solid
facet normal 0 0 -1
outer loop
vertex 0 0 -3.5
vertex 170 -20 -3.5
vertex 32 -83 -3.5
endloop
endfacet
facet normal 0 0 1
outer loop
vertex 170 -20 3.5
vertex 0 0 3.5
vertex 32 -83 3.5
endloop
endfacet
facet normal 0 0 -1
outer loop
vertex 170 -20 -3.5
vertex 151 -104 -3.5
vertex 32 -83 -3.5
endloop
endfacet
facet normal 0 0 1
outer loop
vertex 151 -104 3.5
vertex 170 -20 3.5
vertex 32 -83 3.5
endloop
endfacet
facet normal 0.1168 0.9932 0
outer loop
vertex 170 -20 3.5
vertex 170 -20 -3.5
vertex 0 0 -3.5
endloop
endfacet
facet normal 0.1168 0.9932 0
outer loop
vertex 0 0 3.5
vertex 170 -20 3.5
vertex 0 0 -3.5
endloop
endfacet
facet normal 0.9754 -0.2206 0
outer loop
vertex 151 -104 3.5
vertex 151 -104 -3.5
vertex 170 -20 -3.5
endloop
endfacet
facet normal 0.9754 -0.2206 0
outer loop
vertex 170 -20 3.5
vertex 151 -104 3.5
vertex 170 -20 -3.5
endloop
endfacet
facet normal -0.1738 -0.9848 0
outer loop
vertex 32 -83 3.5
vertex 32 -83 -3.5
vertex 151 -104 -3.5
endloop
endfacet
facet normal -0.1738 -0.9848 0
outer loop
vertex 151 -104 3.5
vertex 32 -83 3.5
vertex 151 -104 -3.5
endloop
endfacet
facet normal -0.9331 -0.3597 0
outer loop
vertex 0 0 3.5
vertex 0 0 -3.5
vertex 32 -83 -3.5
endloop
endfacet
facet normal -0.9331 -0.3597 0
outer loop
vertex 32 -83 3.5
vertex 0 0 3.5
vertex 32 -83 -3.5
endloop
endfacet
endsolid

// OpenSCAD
polyhedron(points=[[32.0, -83.0, -3.5], [0.0, 0.0, -3.5], [170.0, -20.0, -3.5], [32.0, -83.0, 3.5], [0.0, 0.0, 3.5], [170.0, -20.0, 3.5], [151.0, -104.0, -3.5], [151.0, -104.0, 3.5]], faces=[[1, 2, 0], [5, 4, 3], [2, 6, 0], [7, 5, 3], [5, 2, 1], [4, 5, 1], [7, 6, 2], [5, 7, 2], [3, 0, 6], [7, 3, 6], [4, 1, 0], [3, 4, 0]], convexity=20);
